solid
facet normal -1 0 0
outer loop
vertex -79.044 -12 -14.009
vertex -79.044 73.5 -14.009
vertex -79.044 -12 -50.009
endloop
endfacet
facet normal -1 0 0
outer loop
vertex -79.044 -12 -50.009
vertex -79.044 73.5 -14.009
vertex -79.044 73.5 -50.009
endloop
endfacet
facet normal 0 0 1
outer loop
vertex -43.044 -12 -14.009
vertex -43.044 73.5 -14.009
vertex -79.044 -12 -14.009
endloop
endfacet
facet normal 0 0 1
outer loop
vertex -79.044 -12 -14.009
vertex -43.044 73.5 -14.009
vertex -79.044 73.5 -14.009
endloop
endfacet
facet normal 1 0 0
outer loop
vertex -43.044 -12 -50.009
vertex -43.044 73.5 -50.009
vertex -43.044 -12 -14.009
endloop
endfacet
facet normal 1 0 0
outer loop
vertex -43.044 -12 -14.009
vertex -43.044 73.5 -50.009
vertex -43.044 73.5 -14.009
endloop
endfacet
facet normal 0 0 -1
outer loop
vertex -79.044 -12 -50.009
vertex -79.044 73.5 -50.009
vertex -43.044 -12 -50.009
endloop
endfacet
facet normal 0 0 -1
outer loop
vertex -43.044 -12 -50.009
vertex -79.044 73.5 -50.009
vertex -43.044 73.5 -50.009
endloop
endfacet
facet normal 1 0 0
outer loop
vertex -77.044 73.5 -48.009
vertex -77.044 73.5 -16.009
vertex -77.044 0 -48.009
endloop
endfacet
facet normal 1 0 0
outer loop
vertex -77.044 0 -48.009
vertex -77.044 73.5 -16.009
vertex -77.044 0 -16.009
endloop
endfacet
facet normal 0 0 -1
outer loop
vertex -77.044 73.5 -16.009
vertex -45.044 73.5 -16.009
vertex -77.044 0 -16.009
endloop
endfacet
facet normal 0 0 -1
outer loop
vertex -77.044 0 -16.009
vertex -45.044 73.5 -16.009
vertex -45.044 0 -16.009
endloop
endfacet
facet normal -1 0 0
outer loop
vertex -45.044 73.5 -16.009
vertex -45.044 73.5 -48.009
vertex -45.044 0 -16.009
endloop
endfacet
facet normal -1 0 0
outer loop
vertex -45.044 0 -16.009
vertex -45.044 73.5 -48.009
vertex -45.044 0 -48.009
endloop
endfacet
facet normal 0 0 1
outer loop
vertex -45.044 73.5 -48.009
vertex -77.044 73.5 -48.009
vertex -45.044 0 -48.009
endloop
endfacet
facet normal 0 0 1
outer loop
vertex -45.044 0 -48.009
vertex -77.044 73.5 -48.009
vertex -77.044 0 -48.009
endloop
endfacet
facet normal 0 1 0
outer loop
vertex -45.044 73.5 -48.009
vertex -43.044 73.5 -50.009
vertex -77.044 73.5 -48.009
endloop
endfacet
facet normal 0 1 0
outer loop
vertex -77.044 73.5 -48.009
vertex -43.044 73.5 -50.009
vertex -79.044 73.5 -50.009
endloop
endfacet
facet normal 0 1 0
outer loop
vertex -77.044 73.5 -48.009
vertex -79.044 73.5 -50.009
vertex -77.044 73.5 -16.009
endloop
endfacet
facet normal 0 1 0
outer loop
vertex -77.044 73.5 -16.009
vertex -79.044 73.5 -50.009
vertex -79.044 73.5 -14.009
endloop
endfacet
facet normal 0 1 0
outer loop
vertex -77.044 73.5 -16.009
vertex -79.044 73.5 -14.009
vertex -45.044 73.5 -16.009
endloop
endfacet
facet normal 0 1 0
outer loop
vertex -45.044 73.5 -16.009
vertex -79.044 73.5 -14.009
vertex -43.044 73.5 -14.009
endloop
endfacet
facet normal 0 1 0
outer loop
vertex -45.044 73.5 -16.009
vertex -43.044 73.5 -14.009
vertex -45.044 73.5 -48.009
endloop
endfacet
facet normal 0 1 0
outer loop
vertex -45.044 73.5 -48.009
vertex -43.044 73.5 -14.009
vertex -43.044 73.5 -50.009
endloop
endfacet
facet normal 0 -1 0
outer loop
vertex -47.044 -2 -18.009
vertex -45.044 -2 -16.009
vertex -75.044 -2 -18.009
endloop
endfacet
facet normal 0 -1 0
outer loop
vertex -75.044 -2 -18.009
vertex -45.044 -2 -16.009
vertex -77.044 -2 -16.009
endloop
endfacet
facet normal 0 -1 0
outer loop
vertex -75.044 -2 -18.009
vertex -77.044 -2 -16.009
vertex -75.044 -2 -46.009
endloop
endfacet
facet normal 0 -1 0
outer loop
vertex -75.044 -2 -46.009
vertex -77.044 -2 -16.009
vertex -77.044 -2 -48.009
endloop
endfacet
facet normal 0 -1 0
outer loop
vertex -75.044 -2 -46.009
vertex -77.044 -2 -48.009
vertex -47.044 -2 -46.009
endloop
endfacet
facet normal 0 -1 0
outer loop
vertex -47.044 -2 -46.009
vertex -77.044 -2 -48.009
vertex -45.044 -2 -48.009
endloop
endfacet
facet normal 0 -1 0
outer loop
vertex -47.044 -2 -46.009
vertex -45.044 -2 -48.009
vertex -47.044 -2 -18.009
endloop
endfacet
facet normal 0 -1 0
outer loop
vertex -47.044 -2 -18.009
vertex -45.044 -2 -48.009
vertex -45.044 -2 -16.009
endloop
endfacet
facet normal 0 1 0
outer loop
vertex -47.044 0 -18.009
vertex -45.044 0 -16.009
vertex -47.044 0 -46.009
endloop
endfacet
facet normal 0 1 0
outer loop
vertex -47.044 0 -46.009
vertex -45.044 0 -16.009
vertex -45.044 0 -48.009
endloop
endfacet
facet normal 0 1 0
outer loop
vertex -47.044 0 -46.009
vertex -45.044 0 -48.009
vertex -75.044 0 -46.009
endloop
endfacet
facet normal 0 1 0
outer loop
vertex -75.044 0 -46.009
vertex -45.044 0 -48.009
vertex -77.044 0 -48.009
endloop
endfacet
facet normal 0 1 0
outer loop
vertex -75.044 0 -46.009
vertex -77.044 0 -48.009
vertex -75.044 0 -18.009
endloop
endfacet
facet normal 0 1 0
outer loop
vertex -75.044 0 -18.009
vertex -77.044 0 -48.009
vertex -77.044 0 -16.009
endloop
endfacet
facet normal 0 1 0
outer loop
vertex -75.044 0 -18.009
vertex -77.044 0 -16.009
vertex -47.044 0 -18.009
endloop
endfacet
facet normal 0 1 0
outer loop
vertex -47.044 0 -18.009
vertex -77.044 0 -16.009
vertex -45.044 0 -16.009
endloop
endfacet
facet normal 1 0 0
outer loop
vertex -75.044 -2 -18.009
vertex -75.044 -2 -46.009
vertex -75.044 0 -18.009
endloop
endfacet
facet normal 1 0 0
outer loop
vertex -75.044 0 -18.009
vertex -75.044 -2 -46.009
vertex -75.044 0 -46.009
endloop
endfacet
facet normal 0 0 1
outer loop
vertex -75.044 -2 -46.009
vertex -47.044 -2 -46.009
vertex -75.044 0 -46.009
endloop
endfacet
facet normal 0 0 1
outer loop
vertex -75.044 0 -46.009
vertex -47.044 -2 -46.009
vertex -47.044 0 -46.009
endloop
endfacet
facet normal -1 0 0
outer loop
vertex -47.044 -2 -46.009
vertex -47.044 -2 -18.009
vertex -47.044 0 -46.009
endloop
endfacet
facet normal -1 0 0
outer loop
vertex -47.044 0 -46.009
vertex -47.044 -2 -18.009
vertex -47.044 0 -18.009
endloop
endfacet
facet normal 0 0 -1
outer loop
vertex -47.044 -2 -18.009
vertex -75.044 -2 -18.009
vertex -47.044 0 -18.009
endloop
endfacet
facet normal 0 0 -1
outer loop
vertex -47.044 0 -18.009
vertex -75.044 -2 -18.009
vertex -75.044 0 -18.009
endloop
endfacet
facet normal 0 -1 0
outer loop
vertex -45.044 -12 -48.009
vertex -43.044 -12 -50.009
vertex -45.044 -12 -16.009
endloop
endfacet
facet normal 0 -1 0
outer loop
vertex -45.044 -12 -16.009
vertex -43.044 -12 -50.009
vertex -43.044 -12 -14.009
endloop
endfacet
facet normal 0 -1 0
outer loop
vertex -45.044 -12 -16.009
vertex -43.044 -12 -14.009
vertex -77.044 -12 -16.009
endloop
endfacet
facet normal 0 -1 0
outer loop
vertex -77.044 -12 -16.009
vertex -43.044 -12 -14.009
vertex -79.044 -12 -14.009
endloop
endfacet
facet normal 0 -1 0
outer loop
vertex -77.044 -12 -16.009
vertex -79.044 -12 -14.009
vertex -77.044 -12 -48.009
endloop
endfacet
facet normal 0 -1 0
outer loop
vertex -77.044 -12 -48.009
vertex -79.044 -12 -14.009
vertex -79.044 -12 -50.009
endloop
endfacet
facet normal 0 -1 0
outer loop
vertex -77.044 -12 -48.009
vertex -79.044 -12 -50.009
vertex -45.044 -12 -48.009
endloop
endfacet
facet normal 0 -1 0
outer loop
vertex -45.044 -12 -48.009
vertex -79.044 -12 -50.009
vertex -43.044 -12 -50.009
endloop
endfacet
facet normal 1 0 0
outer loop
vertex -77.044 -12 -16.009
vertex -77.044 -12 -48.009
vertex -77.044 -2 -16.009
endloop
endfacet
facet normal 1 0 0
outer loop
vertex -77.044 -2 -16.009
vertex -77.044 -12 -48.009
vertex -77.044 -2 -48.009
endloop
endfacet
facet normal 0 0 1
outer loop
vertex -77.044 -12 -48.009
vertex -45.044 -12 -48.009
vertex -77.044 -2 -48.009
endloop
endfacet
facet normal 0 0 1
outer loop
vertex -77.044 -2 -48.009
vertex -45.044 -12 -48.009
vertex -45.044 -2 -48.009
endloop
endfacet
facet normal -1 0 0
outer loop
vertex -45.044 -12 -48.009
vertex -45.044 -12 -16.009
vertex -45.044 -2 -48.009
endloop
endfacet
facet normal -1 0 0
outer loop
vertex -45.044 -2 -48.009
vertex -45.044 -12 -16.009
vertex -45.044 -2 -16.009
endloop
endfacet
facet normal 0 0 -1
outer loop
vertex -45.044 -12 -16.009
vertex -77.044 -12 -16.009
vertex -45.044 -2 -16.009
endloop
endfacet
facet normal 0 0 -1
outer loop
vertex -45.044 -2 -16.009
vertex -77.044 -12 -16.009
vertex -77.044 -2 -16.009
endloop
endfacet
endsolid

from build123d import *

# Parameters (mm, degrees)
SKETCH1_W            = 36
SKETCH1_H            = 36
SKETCH1_W_2          = 32
SKETCH1_H_2          = 32
BOSS_EXTRUDE1_DEPTH  = 10
SKETCH5_W            = 36
SKETCH5_H            = 36
SKETCH5_W_2          = 32
SKETCH5_H_2          = 32
BOSS_EXTRUDE5_DEPTH  = 63.5
SKETCH2_W            = 36
SKETCH2_H            = 36
SKETCH2_W_2          = 28
SKETCH2_H_2          = 28
BOSS_EXTRUDE9_DEPTH  = 2
SKETCH9_W            = 36
SKETCH9_H            = 36
SKETCH9_W_2          = 32
SKETCH9_H_2          = 32
BOSS_EXTRUDE11_DEPTH = 10


with BuildPart() as part:
    # Sketch1 → Boss-Extrude1 (new body)
    with BuildSketch(Plane(origin=(0, 0, 0), x_dir=(1, 0, 0), z_dir=(0, 1, 0))):
        with Locations((-61.04447382, 32.009277239)):
            Rectangle(SKETCH1_W, SKETCH1_H)
        with Locations((-61.04447382, 32.009277239)):
            Rectangle(SKETCH1_W_2, SKETCH1_H_2, mode=Mode.SUBTRACT)
    extrude(amount=BOSS_EXTRUDE1_DEPTH)

    # Sketch5 → Boss-Extrude5 (add)
    with BuildSketch(Plane(origin=(0, 10, 0), x_dir=(1, 0, 0), z_dir=(0, 1, 0))):
        with Locations((-61.04447382, 32.009277239)):
            Rectangle(SKETCH5_W, SKETCH5_H)
        with Locations((-61.04447382, 32.009277239)):
            Rectangle(SKETCH5_W_2, SKETCH5_H_2, mode=Mode.SUBTRACT)
    extrude(amount=BOSS_EXTRUDE5_DEPTH)

    # Sketch2 → Boss-Extrude9 (add)
    with BuildSketch(Plane.XZ):
        with Locations((-61.04447382, -32.009277239)):
            Rectangle(SKETCH2_W, SKETCH2_H)
        with Locations((-61.04447382, -32.009277239)):
            Rectangle(SKETCH2_W_2, SKETCH2_H_2, mode=Mode.SUBTRACT)
    extrude(amount=BOSS_EXTRUDE9_DEPTH)

    # Sketch9 → Boss-Extrude11 (add)
    with BuildSketch(Plane.XZ.offset(2)):
        with Locations((-61.04447382, -32.009277239)):
            Rectangle(SKETCH9_W, SKETCH9_H)
        with Locations((-61.04447382, -32.009277239)):
            Rectangle(SKETCH9_W_2, SKETCH9_H_2, mode=Mode.SUBTRACT)
    extrude(amount=BOSS_EXTRUDE11_DEPTH)


solid = part.part
